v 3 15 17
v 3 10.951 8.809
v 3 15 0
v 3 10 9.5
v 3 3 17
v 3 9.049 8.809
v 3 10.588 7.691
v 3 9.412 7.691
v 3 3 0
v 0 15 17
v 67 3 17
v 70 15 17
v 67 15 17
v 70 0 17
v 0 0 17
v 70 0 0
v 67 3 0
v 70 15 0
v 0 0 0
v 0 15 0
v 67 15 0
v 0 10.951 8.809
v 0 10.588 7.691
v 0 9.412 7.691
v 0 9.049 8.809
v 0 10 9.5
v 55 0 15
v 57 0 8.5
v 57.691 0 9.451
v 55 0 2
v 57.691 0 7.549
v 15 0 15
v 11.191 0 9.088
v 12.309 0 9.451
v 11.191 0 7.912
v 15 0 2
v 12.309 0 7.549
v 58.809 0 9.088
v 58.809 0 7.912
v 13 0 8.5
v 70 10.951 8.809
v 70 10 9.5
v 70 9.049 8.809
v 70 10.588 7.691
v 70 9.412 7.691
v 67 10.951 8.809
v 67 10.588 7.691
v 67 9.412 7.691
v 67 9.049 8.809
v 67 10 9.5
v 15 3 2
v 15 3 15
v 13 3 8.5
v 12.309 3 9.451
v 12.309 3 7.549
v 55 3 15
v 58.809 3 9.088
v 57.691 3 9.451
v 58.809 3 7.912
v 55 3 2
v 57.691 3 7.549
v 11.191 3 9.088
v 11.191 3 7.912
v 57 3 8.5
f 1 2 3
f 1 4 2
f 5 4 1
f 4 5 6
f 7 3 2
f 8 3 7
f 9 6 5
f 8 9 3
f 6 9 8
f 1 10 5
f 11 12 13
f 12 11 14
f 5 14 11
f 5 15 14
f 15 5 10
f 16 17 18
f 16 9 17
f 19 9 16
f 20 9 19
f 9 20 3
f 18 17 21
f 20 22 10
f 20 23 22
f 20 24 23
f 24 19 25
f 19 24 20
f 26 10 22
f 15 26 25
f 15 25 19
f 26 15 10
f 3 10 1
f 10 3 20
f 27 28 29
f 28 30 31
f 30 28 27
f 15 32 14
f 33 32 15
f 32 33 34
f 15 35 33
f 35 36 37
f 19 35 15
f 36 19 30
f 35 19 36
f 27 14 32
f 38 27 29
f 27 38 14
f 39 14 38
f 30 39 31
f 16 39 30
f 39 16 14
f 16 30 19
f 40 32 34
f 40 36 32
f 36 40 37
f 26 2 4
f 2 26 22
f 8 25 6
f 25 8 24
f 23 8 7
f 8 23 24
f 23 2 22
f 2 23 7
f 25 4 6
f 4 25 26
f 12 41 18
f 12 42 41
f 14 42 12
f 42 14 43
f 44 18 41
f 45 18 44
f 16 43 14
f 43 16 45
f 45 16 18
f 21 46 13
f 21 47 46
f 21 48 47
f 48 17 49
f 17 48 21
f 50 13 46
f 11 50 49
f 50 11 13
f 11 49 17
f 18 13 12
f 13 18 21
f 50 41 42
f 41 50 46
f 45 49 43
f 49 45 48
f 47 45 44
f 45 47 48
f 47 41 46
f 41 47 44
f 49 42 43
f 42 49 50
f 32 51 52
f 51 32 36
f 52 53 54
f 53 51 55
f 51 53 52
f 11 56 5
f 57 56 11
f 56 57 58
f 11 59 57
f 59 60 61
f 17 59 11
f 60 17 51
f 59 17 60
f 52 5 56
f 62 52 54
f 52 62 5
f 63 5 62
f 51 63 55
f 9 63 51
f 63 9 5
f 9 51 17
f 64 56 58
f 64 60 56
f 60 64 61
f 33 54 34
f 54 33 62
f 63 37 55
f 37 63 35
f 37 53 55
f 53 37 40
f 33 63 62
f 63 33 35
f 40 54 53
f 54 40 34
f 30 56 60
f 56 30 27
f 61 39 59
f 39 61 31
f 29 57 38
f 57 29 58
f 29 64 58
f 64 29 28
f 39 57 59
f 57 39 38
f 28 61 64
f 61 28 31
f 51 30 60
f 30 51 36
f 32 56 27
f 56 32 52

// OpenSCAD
w = 17.0;
t = 3.0;

module plate1()
{
    difference()
    {
        cube([t,15.0,w]);
        translate([t,10.0,w/2])
        {
            rotate([0.0,-90.0,0.0])
            {
                cylinder(h=t,r1=1.0,r2=1.0);
            }
        }
    }
}

module plate2()
{
    difference()
    {
        cube([15.0,t,w]);
        translate([12.0,0.0,w/2])
        {
            rotate([-90.0,0.0,0.0])
            {
                cylinder(h=t,r1=1.0,r2=1.0);
            }
        }
    }
}

union()
{
    plate1();
    translate([70-t,0.0,0.0]) { plate1(); }
    plate2();
    translate([70.0,0.0,w]) {
        rotate([0.0,180.0,0.0]) {
            plate2();
        }
    }
    cube([70.0,t,2.0]);
    translate([0.0,0.0,w-2]) {
        cube([70.0,t,2.0]);
    }
}
